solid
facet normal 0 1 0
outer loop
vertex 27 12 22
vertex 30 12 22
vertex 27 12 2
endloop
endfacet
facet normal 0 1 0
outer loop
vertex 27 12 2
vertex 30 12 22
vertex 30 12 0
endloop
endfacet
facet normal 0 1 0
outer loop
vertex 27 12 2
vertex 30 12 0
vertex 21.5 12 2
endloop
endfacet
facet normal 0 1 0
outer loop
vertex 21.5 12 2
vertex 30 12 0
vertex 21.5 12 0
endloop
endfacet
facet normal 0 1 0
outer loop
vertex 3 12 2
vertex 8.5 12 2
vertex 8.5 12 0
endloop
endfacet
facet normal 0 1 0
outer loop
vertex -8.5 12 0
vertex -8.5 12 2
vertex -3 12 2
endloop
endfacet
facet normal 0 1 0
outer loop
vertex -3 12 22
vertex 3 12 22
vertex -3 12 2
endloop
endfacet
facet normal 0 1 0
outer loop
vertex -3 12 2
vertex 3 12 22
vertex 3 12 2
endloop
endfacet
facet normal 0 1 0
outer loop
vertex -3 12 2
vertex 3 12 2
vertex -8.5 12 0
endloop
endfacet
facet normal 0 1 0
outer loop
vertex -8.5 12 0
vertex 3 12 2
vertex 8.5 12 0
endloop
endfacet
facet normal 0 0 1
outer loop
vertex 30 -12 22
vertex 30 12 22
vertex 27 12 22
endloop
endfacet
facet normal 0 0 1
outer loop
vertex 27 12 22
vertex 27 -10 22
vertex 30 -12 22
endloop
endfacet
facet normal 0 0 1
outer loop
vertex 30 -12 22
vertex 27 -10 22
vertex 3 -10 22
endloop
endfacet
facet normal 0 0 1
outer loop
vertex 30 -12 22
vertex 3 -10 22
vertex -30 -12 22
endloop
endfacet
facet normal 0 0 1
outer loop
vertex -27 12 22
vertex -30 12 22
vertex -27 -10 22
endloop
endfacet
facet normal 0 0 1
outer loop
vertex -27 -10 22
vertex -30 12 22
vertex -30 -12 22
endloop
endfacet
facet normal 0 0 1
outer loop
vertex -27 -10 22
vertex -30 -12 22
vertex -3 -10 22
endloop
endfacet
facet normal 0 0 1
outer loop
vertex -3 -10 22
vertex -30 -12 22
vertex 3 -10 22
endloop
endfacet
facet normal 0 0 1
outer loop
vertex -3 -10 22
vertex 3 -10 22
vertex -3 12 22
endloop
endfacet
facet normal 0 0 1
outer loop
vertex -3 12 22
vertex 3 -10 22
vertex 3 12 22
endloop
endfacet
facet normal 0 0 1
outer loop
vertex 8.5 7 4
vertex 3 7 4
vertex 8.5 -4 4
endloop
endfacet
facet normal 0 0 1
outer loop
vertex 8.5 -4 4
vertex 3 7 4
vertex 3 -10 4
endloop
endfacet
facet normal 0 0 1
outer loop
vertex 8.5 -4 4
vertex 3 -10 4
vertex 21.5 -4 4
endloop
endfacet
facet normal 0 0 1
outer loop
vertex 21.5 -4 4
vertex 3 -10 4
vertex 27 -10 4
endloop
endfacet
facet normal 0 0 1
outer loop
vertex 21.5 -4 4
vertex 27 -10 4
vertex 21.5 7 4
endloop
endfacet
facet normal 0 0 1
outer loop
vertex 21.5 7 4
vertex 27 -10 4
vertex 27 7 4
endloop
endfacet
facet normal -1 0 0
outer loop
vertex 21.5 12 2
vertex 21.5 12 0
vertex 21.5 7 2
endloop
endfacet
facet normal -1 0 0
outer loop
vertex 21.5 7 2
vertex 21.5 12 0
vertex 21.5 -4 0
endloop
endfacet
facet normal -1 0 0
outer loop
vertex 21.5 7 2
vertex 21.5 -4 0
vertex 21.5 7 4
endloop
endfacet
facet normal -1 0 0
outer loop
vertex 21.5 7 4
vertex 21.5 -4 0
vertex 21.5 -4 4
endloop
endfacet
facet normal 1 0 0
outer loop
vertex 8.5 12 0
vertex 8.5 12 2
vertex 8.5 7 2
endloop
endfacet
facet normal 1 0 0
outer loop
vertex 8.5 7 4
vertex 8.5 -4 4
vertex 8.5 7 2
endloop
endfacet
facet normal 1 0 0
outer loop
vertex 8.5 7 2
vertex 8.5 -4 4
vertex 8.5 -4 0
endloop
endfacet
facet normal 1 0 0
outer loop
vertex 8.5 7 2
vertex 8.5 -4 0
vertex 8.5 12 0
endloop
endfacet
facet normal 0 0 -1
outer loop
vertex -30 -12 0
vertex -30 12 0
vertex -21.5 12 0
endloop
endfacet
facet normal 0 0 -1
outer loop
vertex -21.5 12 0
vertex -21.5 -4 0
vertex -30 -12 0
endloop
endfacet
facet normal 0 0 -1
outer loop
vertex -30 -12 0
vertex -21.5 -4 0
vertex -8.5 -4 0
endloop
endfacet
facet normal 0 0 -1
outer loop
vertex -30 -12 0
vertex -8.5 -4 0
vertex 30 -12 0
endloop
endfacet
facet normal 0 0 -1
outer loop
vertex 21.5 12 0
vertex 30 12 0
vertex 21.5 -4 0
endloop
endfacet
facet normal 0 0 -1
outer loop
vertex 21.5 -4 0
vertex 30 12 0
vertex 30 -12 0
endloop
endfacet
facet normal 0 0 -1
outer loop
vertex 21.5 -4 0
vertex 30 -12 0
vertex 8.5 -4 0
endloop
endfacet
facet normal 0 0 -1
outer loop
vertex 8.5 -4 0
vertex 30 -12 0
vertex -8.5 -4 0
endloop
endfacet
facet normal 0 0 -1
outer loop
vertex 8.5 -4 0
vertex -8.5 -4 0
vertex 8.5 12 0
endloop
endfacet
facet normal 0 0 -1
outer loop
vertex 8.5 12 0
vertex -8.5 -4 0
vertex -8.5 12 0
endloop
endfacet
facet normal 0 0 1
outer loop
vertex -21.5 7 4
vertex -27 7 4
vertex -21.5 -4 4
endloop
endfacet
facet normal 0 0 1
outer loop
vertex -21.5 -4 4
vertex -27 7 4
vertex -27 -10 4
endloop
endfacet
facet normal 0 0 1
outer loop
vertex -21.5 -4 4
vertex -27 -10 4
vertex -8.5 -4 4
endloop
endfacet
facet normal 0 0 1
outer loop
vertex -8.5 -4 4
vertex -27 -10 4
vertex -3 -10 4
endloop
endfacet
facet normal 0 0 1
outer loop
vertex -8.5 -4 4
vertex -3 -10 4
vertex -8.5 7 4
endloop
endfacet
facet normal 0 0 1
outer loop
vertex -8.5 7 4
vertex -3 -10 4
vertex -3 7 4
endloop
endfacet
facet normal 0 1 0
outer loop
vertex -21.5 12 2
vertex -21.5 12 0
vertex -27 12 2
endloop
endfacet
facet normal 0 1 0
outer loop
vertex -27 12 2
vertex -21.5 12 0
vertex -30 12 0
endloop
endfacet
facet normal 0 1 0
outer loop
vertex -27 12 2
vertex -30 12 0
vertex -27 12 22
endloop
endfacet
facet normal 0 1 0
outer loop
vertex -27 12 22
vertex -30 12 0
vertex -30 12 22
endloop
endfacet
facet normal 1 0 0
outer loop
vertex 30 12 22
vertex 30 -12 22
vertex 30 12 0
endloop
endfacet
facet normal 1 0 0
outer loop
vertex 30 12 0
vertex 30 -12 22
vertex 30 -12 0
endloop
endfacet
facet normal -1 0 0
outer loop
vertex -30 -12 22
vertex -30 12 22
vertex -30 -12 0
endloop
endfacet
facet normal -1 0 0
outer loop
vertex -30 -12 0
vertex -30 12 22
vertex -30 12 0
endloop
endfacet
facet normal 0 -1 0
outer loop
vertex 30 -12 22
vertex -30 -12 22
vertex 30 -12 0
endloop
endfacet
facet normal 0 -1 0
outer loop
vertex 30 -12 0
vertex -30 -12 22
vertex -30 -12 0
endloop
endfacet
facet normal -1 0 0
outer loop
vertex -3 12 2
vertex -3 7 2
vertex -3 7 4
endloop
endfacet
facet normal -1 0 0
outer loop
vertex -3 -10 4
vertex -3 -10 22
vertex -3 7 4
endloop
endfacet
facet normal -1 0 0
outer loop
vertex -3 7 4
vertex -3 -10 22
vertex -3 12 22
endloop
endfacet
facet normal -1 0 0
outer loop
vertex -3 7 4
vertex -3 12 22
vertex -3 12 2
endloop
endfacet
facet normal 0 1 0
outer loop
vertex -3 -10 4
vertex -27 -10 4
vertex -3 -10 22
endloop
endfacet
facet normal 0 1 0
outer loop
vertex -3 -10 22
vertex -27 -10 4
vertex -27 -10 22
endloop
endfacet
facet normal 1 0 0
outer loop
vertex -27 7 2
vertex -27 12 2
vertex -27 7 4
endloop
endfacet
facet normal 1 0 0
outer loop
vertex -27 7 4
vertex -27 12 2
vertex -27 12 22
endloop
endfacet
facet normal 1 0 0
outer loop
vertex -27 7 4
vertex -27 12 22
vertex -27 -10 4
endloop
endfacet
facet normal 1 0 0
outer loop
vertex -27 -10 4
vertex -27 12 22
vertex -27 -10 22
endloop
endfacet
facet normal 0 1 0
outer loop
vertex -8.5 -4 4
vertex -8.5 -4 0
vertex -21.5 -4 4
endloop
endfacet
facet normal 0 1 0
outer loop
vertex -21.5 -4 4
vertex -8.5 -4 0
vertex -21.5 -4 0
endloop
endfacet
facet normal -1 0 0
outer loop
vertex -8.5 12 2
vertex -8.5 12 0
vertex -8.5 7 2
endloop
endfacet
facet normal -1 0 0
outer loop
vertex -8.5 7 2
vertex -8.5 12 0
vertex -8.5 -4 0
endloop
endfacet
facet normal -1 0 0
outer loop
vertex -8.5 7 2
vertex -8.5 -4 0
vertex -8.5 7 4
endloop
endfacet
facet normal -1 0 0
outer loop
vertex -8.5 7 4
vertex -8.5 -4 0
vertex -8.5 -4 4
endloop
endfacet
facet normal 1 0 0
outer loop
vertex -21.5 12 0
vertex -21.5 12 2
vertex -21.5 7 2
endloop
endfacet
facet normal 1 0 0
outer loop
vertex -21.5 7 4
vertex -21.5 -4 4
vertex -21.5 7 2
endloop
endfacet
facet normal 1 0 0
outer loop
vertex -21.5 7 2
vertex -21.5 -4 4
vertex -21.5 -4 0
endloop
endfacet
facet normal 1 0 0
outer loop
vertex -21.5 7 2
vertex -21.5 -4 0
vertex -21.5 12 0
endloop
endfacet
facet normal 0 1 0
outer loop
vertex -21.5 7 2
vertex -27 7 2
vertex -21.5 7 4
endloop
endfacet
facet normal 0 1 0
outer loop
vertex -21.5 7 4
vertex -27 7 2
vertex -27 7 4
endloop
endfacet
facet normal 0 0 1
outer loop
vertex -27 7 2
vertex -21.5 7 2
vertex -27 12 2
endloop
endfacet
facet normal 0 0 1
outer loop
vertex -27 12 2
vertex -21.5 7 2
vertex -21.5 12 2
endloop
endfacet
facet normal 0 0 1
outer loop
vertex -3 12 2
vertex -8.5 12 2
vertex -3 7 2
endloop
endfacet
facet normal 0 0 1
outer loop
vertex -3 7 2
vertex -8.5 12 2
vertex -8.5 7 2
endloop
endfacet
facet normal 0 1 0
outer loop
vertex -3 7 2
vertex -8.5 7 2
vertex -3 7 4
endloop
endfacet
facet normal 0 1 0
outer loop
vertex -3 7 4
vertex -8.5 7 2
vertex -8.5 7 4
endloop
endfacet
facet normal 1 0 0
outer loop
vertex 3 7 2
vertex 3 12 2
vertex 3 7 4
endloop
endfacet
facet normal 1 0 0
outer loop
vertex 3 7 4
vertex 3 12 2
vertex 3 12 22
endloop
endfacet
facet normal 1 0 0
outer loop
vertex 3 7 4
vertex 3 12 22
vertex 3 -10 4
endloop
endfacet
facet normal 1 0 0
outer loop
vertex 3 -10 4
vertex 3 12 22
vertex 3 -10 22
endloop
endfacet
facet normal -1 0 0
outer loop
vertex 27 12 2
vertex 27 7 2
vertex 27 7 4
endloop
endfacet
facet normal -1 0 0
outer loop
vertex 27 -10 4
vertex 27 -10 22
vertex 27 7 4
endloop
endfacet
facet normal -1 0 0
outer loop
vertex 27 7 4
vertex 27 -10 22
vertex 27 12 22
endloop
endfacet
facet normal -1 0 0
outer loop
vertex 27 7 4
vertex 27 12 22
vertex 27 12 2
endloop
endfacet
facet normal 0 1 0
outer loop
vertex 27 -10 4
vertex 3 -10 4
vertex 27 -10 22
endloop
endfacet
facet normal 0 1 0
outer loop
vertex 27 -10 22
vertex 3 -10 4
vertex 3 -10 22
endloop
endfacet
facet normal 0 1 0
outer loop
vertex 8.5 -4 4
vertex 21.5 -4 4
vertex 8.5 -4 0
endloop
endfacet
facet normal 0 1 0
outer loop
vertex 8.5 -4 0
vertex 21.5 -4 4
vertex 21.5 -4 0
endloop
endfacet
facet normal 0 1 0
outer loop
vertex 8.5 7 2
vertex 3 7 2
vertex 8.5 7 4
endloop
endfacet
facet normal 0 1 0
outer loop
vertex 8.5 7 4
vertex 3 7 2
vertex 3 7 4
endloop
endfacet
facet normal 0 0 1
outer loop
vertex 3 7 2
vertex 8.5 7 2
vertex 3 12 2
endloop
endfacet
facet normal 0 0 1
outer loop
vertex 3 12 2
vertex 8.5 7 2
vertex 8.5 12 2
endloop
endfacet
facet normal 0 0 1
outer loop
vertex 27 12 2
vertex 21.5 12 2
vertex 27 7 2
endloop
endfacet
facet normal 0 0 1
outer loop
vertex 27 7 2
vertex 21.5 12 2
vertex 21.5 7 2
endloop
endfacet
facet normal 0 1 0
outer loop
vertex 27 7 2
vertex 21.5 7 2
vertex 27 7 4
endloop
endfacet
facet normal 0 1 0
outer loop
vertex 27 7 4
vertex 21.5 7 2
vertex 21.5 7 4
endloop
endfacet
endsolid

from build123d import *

# Parameters (mm, degrees)
SKETCH_1_W          = 60
SKETCH_1_H          = 24
EXTRUDE_1_DEPTH     = 22
SKETCH_3_W          = 24
SKETCH_3_H          = 20
CUT_EXTRUDE_2_DEPTH = 18
SKETCH_5_W          = 13
SKETCH_5_H          = 16
CUT_EXTRUDE_4_DEPTH = 4
SKETCH_6_W          = 24
SKETCH_6_H          = 20
CUT_EXTRUDE_5_DEPTH = 5


with BuildPart() as part:
    # ｽｹｯﾁ1 → ﾎﾞｽ - 押し出し1 (new body)
    with BuildSketch(Plane.XY):
        Rectangle(SKETCH_1_W, SKETCH_1_H)
    extrude(amount=EXTRUDE_1_DEPTH)

    # ｽｹｯﾁ3 → ｶｯﾄ - 押し出し2 (cut)
    with BuildSketch(Plane.XY.offset(22)):
        with Locations((-15, 0)):
            Rectangle(SKETCH_3_W, SKETCH_3_H)
    cut_extrude_2 = extrude(amount=-CUT_EXTRUDE_2_DEPTH, mode=Mode.SUBTRACT)

    # ｽｹｯﾁ5 → ｶｯﾄ - 押し出し4 (cut)
    with BuildSketch(Plane.XY.offset(4)):
        with Locations((-15, 4)):
            Rectangle(SKETCH_5_W, SKETCH_5_H)
    cut_extrude_4 = extrude(amount=-CUT_EXTRUDE_4_DEPTH, mode=Mode.SUBTRACT)

    # ｽｹｯﾁ6 → ｶｯﾄ - 押し出し5 (cut)
    with BuildSketch(Plane(origin=(0, 12, 0), x_dir=(1, 0, 0), z_dir=(0, 1, 0))):
        with Locations((-15, -12)):
            Rectangle(SKETCH_6_W, SKETCH_6_H)
    cut_extrude_5 = extrude(amount=-CUT_EXTRUDE_5_DEPTH, mode=Mode.SUBTRACT)

    # ﾐﾗｰ1: ｶｯﾄ - 押し出し2, ｶｯﾄ - 押し出し4, ｶｯﾄ - 押し出し5 across plane
    add(cut_extrude_2.mirror(Plane(origin=(0, 0, 0), x_dir=(0, 0, 1), z_dir=(1, 0, 0))), mode=Mode.SUBTRACT)
    add(cut_extrude_4.mirror(Plane(origin=(0, 0, 0), x_dir=(0, 0, 1), z_dir=(1, 0, 0))), mode=Mode.SUBTRACT)
    add(cut_extrude_5.mirror(Plane(origin=(0, 0, 0), x_dir=(0, 0, 1), z_dir=(1, 0, 0))), mode=Mode.SUBTRACT)


solid = part.part
